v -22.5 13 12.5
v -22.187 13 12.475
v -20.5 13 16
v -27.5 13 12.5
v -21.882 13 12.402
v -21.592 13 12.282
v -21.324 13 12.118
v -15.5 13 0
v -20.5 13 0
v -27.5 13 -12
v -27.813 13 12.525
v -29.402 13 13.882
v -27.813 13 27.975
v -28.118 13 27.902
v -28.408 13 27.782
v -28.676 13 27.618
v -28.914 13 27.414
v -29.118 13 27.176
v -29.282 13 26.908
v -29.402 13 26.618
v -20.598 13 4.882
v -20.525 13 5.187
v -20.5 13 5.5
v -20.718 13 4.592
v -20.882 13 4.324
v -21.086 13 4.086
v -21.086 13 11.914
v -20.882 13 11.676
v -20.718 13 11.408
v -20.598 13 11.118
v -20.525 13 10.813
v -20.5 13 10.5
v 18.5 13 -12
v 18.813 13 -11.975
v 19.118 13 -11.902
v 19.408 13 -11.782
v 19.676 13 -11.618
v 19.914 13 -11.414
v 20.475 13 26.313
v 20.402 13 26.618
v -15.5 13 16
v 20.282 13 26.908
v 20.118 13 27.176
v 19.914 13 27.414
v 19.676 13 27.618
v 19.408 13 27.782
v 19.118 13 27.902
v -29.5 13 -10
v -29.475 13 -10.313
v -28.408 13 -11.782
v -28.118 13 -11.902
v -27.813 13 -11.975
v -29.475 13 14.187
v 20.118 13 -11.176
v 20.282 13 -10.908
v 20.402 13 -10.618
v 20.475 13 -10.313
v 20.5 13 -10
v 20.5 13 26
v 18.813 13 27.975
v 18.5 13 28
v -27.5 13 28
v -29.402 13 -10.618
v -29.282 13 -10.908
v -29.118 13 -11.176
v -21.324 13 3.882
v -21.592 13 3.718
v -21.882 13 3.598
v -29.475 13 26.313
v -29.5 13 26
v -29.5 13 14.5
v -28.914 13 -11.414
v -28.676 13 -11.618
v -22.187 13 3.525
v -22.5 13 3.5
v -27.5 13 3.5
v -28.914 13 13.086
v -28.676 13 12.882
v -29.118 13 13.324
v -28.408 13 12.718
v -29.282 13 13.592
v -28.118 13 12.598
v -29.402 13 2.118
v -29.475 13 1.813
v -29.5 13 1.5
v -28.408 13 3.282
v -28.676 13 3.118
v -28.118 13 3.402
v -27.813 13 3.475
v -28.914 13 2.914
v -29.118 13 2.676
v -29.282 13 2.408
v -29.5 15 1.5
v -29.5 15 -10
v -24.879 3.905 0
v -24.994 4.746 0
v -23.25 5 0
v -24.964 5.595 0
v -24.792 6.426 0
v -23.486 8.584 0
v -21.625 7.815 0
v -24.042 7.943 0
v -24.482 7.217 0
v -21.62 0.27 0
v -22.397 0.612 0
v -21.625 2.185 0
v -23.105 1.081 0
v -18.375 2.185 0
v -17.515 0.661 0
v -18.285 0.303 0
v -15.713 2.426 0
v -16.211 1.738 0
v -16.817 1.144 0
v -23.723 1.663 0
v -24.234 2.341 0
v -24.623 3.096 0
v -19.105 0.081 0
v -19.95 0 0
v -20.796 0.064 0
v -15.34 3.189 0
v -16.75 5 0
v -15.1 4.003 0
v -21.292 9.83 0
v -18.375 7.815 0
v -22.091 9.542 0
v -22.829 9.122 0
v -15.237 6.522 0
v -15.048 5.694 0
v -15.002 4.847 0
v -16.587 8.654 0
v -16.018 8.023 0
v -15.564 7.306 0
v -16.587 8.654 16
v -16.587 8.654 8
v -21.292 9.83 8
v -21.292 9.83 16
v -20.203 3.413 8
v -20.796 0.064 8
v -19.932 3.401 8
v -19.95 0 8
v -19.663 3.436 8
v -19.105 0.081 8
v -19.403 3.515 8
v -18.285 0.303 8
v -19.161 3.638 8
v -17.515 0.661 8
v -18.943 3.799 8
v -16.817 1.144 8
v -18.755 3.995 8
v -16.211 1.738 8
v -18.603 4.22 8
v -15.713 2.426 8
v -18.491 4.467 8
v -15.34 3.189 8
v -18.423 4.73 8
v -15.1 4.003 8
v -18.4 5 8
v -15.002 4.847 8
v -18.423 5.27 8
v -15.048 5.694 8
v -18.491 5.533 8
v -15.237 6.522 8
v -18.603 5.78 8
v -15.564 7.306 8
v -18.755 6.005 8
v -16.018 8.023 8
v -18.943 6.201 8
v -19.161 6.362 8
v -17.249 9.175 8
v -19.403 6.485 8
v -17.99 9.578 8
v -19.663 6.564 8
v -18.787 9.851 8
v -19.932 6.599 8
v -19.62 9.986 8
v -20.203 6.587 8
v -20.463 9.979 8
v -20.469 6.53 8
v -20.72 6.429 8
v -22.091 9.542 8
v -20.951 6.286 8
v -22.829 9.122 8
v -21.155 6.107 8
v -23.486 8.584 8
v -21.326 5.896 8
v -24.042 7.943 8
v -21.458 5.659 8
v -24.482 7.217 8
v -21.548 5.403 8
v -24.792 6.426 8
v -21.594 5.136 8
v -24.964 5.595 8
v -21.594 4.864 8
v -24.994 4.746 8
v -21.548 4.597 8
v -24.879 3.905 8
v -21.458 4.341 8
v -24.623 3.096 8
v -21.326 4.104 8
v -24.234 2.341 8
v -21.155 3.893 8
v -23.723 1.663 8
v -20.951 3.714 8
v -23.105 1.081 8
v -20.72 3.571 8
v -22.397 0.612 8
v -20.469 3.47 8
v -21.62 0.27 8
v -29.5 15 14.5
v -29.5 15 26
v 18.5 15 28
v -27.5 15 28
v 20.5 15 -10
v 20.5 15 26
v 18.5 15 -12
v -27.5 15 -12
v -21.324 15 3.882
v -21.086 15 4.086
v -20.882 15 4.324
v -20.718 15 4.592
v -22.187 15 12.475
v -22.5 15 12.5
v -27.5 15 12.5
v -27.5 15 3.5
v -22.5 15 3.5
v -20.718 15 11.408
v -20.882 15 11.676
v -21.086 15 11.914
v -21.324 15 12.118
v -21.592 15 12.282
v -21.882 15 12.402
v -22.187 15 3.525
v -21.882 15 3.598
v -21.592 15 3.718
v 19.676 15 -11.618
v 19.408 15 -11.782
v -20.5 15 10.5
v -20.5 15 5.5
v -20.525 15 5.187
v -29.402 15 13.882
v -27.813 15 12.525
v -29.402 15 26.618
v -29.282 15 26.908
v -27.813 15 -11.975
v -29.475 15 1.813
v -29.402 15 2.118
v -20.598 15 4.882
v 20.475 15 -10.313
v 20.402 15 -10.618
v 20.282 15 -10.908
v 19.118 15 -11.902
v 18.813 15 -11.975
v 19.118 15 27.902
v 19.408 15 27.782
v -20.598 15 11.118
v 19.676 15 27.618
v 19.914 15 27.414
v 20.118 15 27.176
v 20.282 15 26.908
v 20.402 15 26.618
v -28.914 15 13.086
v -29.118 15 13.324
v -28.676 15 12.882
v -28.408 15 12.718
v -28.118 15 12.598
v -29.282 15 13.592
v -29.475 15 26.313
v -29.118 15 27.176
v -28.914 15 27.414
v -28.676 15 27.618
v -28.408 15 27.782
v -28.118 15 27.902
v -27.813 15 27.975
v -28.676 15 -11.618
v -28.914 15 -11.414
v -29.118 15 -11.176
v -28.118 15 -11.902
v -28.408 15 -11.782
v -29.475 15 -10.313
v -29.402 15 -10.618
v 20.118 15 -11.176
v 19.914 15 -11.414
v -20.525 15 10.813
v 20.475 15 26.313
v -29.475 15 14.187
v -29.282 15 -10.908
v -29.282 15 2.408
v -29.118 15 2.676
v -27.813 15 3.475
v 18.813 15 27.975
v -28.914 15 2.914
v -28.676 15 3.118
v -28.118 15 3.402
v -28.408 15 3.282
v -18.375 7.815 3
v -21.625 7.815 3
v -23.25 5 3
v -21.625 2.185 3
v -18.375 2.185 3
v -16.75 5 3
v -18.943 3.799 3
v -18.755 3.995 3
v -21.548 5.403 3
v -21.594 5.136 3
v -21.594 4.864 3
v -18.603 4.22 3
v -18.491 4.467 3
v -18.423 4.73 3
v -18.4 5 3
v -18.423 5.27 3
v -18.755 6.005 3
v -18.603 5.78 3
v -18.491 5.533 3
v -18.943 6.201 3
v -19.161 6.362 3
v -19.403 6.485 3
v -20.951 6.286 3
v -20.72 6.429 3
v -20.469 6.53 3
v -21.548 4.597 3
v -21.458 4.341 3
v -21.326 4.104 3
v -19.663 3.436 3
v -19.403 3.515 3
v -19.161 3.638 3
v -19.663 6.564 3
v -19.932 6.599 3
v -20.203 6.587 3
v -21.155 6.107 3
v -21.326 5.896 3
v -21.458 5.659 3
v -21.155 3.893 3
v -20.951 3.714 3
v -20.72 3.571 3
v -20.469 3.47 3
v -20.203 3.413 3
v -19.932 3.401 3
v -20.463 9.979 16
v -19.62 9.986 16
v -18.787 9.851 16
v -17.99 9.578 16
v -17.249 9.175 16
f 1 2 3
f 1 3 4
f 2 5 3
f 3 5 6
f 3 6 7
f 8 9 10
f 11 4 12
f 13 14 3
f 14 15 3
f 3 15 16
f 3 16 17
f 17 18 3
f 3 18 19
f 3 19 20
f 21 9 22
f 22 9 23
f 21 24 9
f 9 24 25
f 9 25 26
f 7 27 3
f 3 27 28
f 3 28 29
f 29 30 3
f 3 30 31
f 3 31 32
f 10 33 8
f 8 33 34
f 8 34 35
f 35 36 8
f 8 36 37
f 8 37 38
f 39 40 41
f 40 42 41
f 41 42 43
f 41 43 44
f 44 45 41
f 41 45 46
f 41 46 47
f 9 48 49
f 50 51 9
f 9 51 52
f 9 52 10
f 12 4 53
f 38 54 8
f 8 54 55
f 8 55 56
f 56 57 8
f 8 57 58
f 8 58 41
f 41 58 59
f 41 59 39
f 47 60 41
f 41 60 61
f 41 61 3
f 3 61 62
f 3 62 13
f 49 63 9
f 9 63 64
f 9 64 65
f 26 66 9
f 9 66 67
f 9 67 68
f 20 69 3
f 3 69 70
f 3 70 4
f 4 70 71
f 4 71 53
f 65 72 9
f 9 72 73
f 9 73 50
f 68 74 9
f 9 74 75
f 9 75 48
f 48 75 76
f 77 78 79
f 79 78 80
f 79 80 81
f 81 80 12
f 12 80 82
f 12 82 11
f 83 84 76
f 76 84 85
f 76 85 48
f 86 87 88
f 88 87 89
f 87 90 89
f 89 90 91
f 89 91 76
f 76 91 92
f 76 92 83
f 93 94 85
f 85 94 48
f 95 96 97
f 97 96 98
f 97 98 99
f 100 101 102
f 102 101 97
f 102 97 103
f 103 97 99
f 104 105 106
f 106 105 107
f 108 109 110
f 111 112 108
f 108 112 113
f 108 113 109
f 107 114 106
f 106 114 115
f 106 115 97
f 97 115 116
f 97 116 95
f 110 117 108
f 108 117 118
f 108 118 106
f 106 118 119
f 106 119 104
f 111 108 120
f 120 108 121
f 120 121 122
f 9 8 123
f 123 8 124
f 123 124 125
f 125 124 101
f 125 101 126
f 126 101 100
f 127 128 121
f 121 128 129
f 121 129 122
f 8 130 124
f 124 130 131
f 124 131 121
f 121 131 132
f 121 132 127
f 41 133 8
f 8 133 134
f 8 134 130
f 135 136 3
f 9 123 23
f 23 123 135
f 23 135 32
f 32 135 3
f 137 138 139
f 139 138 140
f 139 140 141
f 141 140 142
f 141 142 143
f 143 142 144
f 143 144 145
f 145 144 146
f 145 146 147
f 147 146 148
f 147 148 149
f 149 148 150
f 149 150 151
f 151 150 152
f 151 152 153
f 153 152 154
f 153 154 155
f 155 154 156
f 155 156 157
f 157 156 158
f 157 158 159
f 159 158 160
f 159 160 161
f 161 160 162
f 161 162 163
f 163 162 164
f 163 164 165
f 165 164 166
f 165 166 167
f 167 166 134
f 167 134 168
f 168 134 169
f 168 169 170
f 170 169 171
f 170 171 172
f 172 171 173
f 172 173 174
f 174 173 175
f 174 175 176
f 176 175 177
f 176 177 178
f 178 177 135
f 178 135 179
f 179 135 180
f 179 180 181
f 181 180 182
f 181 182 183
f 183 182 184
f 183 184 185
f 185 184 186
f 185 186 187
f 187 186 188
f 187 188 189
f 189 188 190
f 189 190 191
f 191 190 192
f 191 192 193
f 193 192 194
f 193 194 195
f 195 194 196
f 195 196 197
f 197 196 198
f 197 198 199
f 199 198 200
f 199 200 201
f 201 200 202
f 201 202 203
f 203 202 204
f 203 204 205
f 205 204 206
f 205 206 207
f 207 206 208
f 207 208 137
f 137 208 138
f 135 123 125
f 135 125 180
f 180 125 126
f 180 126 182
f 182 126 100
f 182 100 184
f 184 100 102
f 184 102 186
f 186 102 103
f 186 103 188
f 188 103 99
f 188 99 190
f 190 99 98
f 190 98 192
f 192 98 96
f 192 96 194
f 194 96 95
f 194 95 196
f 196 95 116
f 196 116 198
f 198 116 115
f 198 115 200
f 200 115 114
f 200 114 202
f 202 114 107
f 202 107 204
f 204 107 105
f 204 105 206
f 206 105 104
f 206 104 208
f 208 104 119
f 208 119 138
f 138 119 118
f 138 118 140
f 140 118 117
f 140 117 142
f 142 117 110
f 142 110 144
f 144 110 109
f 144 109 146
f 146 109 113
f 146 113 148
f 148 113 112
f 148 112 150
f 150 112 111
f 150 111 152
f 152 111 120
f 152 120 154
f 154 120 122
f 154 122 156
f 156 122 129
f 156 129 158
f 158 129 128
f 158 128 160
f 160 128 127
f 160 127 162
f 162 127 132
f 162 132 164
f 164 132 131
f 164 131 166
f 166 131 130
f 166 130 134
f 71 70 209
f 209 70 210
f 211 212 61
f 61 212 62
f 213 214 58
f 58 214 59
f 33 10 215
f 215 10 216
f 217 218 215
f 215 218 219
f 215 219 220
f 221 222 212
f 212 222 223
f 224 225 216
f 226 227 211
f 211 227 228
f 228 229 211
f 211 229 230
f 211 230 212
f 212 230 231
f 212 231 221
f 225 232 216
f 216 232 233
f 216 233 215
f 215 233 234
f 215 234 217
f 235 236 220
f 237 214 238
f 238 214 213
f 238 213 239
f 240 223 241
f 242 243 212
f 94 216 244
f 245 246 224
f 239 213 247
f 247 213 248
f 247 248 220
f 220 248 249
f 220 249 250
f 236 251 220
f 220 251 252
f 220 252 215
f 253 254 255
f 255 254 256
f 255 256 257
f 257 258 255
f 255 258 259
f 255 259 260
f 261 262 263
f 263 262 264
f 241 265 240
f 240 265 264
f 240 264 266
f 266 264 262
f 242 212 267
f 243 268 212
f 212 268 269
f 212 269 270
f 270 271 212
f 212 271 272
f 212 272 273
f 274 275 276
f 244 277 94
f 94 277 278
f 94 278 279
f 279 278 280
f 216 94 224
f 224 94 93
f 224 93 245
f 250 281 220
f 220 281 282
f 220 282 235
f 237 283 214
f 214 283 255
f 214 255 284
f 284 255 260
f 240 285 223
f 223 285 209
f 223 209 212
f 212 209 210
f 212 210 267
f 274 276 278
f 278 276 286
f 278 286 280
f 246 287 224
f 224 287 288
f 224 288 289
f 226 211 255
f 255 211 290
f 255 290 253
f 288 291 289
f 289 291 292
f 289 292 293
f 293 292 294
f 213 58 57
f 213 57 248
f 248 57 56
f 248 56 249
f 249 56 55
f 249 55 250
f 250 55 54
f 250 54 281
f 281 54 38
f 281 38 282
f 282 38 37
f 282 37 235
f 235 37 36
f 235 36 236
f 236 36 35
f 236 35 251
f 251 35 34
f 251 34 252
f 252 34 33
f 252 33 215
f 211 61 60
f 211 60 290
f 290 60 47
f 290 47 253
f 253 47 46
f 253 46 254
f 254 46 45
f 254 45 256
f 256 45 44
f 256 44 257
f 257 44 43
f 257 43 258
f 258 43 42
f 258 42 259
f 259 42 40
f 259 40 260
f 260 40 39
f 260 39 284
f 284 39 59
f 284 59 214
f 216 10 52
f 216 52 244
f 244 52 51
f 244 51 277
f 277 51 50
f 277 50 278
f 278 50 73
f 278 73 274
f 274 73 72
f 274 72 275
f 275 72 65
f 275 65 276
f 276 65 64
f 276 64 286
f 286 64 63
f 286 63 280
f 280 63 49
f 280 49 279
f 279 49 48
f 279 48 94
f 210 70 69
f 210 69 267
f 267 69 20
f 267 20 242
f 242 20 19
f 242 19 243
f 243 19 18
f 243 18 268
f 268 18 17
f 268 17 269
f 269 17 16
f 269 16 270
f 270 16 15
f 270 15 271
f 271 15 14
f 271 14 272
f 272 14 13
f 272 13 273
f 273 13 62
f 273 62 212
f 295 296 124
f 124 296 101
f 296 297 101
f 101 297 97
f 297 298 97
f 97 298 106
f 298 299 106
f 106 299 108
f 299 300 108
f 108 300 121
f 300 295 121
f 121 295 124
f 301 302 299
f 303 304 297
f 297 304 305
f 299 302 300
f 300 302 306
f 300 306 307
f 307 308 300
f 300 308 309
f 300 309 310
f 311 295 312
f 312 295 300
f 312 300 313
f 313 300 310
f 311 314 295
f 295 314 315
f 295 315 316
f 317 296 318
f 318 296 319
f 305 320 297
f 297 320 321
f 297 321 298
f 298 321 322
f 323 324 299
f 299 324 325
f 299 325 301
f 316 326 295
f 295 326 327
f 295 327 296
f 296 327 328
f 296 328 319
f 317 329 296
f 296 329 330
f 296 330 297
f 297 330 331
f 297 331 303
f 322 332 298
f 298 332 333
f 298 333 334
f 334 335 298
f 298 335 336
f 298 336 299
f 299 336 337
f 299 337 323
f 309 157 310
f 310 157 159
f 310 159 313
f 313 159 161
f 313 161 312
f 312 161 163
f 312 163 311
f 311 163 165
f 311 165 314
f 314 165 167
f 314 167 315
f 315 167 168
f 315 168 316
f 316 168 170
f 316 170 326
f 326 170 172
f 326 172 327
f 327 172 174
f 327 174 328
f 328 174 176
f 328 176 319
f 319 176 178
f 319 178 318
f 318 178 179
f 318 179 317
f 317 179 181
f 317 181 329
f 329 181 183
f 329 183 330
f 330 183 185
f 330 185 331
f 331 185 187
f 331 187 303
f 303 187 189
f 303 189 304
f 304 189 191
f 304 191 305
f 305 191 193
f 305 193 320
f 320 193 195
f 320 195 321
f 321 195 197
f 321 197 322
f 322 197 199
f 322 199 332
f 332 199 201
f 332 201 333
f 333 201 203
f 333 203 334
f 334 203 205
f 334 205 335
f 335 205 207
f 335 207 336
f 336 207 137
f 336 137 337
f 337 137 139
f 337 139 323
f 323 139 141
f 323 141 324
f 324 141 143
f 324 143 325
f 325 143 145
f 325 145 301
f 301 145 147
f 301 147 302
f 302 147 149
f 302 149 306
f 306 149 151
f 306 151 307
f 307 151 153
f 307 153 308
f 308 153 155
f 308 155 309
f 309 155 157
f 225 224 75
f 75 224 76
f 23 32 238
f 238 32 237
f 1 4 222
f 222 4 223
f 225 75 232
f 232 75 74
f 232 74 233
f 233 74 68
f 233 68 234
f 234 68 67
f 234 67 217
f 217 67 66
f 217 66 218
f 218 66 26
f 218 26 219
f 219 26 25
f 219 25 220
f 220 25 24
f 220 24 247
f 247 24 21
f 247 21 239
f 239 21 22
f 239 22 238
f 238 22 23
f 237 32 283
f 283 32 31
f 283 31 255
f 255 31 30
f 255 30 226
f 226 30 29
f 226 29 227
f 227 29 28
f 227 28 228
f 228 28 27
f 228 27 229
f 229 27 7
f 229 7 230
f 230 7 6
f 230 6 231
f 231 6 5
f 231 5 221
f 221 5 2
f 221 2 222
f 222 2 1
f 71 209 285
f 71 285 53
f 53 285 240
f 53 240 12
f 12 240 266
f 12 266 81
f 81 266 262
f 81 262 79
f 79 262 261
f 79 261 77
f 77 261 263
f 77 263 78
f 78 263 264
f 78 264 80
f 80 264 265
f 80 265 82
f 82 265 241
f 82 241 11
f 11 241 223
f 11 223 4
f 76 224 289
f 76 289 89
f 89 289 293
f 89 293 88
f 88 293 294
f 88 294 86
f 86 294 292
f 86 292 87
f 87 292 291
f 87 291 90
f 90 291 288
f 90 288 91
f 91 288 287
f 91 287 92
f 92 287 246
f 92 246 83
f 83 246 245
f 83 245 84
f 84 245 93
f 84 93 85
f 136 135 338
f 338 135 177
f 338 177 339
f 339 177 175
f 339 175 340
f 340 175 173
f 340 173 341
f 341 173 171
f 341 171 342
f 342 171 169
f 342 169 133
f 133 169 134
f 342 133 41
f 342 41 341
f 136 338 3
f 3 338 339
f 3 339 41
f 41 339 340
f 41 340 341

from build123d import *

# Parameters (mm, degrees)
EXTRUDE_3_DEPTH          = 8
SKETCH_4_W               = 50
SKETCH_4_H               = 40
EXTRUDE_4_DEPTH          = 2
FILLET_1_R               = 2
CUT_EXTRUDE_1_DEPTH      = 3
CUT_EXTRUDE_2_DEPTH      = 44.350317185
CUT_EXTRUDE_2_DEPTH_BACK = 44.350317185
SKETCH_3_4_R             = 1.6
SKETCH_6_W               = 9
SKETCH_6_H               = 9
CUT_EXTRUDE_3_DEPTH      = 2
FILLET_3_R               = 2
EXTRUDE_5_DEPTH          = 16


with BuildPart() as part:
    # Эскиз3 → Бобышка-Вытянуть3 (new body)
    with BuildSketch(Plane.XY):
        with BuildLine():
            ThreePointArc((-21.292484919, 9.830060324), (-21.212678125, 0.149287499), (-16.586602566, 8.653589736))
            Line((-16.586602566, 8.653589736), (-15.5, 13))
            Line((-15.5, 13), (-20.5, 13))
            Line((-20.5, 13), (-21.292484919, 9.830060324))
        make_face()
    extrude(amount=EXTRUDE_3_DEPTH)

    # Эскиз4 → Бобышка-Вытянуть4 (add)
    with BuildSketch(Plane(origin=(0, 13, 0), x_dir=(1, 0, 0), z_dir=(0, 1, 0))):
        with Locations((-4.5, -8)):
            Rectangle(SKETCH_4_W, SKETCH_4_H)
    extrude(amount=EXTRUDE_4_DEPTH)

    # Скругление1
    fillet_1_edges = [part.edges().sort_by_distance(p)[0] for p in [
        (-29.5, 14, -12),
        (-29.5, 14, 28),
        (20.5, 14, 28),
        (20.5, 14, -12),
    ]]
    fillet(fillet_1_edges, radius=FILLET_1_R)

    # Эскиз3<3> → Вырез-Вытянуть1 (cut)
    with BuildSketch(Plane.XY):
        Polygon((-21.625, 7.814582562), (-23.25, 5), (-21.625, 2.185417438), (-18.375, 2.185417438), (-16.75, 5), (-18.375, 7.814582562), align=None)
    extrude(amount=CUT_EXTRUDE_1_DEPTH, mode=Mode.SUBTRACT)

    # Эскиз3<4> → Вырез-Вытянуть2 (cut, two sides: drawn at the far end of the back side and taken through both)
    with BuildSketch(Plane.XY.offset(-CUT_EXTRUDE_2_DEPTH_BACK)):
        with Locations((-20, 5)):
            Circle(SKETCH_3_4_R)
    extrude(amount=CUT_EXTRUDE_2_DEPTH + CUT_EXTRUDE_2_DEPTH_BACK, mode=Mode.SUBTRACT)

    # Эскиз6 → Вырез-Вытянуть3 (cut)
    with BuildSketch(Plane(origin=(0, 15, 0), x_dir=(1, 0, 0), z_dir=(0, 1, 0))):
        with Locations((-25, -8)):
            Rectangle(SKETCH_6_W, SKETCH_6_H)
    extrude(amount=-CUT_EXTRUDE_3_DEPTH, mode=Mode.SUBTRACT)

    # Скругление3
    fillet_3_edges = [part.edges().sort_by_distance(p)[0] for p in [
        (-29.5, 14, 12.5),
        (-29.5, 14, 3.5),
        (-20.5, 14, 3.5),
        (-20.5, 14, 12.5),
    ]]
    fillet(fillet_3_edges, radius=FILLET_3_R)

    # Эскиз3<5> → Бобышка-Вытянуть5 (add)
    with BuildSketch(Plane.XY):
        with BuildLine():
            ThreePointArc((-21.292484919, 9.830060324), (-18.787321875, 9.850712501), (-16.586602566, 8.653589736))
            Line((-16.586602566, 8.653589736), (-15.5, 13))
            Line((-15.5, 13), (-20.5, 13))
            Line((-20.5, 13), (-21.292484919, 9.830060324))
        make_face()
    extrude(amount=EXTRUDE_5_DEPTH)


solid = part.part
